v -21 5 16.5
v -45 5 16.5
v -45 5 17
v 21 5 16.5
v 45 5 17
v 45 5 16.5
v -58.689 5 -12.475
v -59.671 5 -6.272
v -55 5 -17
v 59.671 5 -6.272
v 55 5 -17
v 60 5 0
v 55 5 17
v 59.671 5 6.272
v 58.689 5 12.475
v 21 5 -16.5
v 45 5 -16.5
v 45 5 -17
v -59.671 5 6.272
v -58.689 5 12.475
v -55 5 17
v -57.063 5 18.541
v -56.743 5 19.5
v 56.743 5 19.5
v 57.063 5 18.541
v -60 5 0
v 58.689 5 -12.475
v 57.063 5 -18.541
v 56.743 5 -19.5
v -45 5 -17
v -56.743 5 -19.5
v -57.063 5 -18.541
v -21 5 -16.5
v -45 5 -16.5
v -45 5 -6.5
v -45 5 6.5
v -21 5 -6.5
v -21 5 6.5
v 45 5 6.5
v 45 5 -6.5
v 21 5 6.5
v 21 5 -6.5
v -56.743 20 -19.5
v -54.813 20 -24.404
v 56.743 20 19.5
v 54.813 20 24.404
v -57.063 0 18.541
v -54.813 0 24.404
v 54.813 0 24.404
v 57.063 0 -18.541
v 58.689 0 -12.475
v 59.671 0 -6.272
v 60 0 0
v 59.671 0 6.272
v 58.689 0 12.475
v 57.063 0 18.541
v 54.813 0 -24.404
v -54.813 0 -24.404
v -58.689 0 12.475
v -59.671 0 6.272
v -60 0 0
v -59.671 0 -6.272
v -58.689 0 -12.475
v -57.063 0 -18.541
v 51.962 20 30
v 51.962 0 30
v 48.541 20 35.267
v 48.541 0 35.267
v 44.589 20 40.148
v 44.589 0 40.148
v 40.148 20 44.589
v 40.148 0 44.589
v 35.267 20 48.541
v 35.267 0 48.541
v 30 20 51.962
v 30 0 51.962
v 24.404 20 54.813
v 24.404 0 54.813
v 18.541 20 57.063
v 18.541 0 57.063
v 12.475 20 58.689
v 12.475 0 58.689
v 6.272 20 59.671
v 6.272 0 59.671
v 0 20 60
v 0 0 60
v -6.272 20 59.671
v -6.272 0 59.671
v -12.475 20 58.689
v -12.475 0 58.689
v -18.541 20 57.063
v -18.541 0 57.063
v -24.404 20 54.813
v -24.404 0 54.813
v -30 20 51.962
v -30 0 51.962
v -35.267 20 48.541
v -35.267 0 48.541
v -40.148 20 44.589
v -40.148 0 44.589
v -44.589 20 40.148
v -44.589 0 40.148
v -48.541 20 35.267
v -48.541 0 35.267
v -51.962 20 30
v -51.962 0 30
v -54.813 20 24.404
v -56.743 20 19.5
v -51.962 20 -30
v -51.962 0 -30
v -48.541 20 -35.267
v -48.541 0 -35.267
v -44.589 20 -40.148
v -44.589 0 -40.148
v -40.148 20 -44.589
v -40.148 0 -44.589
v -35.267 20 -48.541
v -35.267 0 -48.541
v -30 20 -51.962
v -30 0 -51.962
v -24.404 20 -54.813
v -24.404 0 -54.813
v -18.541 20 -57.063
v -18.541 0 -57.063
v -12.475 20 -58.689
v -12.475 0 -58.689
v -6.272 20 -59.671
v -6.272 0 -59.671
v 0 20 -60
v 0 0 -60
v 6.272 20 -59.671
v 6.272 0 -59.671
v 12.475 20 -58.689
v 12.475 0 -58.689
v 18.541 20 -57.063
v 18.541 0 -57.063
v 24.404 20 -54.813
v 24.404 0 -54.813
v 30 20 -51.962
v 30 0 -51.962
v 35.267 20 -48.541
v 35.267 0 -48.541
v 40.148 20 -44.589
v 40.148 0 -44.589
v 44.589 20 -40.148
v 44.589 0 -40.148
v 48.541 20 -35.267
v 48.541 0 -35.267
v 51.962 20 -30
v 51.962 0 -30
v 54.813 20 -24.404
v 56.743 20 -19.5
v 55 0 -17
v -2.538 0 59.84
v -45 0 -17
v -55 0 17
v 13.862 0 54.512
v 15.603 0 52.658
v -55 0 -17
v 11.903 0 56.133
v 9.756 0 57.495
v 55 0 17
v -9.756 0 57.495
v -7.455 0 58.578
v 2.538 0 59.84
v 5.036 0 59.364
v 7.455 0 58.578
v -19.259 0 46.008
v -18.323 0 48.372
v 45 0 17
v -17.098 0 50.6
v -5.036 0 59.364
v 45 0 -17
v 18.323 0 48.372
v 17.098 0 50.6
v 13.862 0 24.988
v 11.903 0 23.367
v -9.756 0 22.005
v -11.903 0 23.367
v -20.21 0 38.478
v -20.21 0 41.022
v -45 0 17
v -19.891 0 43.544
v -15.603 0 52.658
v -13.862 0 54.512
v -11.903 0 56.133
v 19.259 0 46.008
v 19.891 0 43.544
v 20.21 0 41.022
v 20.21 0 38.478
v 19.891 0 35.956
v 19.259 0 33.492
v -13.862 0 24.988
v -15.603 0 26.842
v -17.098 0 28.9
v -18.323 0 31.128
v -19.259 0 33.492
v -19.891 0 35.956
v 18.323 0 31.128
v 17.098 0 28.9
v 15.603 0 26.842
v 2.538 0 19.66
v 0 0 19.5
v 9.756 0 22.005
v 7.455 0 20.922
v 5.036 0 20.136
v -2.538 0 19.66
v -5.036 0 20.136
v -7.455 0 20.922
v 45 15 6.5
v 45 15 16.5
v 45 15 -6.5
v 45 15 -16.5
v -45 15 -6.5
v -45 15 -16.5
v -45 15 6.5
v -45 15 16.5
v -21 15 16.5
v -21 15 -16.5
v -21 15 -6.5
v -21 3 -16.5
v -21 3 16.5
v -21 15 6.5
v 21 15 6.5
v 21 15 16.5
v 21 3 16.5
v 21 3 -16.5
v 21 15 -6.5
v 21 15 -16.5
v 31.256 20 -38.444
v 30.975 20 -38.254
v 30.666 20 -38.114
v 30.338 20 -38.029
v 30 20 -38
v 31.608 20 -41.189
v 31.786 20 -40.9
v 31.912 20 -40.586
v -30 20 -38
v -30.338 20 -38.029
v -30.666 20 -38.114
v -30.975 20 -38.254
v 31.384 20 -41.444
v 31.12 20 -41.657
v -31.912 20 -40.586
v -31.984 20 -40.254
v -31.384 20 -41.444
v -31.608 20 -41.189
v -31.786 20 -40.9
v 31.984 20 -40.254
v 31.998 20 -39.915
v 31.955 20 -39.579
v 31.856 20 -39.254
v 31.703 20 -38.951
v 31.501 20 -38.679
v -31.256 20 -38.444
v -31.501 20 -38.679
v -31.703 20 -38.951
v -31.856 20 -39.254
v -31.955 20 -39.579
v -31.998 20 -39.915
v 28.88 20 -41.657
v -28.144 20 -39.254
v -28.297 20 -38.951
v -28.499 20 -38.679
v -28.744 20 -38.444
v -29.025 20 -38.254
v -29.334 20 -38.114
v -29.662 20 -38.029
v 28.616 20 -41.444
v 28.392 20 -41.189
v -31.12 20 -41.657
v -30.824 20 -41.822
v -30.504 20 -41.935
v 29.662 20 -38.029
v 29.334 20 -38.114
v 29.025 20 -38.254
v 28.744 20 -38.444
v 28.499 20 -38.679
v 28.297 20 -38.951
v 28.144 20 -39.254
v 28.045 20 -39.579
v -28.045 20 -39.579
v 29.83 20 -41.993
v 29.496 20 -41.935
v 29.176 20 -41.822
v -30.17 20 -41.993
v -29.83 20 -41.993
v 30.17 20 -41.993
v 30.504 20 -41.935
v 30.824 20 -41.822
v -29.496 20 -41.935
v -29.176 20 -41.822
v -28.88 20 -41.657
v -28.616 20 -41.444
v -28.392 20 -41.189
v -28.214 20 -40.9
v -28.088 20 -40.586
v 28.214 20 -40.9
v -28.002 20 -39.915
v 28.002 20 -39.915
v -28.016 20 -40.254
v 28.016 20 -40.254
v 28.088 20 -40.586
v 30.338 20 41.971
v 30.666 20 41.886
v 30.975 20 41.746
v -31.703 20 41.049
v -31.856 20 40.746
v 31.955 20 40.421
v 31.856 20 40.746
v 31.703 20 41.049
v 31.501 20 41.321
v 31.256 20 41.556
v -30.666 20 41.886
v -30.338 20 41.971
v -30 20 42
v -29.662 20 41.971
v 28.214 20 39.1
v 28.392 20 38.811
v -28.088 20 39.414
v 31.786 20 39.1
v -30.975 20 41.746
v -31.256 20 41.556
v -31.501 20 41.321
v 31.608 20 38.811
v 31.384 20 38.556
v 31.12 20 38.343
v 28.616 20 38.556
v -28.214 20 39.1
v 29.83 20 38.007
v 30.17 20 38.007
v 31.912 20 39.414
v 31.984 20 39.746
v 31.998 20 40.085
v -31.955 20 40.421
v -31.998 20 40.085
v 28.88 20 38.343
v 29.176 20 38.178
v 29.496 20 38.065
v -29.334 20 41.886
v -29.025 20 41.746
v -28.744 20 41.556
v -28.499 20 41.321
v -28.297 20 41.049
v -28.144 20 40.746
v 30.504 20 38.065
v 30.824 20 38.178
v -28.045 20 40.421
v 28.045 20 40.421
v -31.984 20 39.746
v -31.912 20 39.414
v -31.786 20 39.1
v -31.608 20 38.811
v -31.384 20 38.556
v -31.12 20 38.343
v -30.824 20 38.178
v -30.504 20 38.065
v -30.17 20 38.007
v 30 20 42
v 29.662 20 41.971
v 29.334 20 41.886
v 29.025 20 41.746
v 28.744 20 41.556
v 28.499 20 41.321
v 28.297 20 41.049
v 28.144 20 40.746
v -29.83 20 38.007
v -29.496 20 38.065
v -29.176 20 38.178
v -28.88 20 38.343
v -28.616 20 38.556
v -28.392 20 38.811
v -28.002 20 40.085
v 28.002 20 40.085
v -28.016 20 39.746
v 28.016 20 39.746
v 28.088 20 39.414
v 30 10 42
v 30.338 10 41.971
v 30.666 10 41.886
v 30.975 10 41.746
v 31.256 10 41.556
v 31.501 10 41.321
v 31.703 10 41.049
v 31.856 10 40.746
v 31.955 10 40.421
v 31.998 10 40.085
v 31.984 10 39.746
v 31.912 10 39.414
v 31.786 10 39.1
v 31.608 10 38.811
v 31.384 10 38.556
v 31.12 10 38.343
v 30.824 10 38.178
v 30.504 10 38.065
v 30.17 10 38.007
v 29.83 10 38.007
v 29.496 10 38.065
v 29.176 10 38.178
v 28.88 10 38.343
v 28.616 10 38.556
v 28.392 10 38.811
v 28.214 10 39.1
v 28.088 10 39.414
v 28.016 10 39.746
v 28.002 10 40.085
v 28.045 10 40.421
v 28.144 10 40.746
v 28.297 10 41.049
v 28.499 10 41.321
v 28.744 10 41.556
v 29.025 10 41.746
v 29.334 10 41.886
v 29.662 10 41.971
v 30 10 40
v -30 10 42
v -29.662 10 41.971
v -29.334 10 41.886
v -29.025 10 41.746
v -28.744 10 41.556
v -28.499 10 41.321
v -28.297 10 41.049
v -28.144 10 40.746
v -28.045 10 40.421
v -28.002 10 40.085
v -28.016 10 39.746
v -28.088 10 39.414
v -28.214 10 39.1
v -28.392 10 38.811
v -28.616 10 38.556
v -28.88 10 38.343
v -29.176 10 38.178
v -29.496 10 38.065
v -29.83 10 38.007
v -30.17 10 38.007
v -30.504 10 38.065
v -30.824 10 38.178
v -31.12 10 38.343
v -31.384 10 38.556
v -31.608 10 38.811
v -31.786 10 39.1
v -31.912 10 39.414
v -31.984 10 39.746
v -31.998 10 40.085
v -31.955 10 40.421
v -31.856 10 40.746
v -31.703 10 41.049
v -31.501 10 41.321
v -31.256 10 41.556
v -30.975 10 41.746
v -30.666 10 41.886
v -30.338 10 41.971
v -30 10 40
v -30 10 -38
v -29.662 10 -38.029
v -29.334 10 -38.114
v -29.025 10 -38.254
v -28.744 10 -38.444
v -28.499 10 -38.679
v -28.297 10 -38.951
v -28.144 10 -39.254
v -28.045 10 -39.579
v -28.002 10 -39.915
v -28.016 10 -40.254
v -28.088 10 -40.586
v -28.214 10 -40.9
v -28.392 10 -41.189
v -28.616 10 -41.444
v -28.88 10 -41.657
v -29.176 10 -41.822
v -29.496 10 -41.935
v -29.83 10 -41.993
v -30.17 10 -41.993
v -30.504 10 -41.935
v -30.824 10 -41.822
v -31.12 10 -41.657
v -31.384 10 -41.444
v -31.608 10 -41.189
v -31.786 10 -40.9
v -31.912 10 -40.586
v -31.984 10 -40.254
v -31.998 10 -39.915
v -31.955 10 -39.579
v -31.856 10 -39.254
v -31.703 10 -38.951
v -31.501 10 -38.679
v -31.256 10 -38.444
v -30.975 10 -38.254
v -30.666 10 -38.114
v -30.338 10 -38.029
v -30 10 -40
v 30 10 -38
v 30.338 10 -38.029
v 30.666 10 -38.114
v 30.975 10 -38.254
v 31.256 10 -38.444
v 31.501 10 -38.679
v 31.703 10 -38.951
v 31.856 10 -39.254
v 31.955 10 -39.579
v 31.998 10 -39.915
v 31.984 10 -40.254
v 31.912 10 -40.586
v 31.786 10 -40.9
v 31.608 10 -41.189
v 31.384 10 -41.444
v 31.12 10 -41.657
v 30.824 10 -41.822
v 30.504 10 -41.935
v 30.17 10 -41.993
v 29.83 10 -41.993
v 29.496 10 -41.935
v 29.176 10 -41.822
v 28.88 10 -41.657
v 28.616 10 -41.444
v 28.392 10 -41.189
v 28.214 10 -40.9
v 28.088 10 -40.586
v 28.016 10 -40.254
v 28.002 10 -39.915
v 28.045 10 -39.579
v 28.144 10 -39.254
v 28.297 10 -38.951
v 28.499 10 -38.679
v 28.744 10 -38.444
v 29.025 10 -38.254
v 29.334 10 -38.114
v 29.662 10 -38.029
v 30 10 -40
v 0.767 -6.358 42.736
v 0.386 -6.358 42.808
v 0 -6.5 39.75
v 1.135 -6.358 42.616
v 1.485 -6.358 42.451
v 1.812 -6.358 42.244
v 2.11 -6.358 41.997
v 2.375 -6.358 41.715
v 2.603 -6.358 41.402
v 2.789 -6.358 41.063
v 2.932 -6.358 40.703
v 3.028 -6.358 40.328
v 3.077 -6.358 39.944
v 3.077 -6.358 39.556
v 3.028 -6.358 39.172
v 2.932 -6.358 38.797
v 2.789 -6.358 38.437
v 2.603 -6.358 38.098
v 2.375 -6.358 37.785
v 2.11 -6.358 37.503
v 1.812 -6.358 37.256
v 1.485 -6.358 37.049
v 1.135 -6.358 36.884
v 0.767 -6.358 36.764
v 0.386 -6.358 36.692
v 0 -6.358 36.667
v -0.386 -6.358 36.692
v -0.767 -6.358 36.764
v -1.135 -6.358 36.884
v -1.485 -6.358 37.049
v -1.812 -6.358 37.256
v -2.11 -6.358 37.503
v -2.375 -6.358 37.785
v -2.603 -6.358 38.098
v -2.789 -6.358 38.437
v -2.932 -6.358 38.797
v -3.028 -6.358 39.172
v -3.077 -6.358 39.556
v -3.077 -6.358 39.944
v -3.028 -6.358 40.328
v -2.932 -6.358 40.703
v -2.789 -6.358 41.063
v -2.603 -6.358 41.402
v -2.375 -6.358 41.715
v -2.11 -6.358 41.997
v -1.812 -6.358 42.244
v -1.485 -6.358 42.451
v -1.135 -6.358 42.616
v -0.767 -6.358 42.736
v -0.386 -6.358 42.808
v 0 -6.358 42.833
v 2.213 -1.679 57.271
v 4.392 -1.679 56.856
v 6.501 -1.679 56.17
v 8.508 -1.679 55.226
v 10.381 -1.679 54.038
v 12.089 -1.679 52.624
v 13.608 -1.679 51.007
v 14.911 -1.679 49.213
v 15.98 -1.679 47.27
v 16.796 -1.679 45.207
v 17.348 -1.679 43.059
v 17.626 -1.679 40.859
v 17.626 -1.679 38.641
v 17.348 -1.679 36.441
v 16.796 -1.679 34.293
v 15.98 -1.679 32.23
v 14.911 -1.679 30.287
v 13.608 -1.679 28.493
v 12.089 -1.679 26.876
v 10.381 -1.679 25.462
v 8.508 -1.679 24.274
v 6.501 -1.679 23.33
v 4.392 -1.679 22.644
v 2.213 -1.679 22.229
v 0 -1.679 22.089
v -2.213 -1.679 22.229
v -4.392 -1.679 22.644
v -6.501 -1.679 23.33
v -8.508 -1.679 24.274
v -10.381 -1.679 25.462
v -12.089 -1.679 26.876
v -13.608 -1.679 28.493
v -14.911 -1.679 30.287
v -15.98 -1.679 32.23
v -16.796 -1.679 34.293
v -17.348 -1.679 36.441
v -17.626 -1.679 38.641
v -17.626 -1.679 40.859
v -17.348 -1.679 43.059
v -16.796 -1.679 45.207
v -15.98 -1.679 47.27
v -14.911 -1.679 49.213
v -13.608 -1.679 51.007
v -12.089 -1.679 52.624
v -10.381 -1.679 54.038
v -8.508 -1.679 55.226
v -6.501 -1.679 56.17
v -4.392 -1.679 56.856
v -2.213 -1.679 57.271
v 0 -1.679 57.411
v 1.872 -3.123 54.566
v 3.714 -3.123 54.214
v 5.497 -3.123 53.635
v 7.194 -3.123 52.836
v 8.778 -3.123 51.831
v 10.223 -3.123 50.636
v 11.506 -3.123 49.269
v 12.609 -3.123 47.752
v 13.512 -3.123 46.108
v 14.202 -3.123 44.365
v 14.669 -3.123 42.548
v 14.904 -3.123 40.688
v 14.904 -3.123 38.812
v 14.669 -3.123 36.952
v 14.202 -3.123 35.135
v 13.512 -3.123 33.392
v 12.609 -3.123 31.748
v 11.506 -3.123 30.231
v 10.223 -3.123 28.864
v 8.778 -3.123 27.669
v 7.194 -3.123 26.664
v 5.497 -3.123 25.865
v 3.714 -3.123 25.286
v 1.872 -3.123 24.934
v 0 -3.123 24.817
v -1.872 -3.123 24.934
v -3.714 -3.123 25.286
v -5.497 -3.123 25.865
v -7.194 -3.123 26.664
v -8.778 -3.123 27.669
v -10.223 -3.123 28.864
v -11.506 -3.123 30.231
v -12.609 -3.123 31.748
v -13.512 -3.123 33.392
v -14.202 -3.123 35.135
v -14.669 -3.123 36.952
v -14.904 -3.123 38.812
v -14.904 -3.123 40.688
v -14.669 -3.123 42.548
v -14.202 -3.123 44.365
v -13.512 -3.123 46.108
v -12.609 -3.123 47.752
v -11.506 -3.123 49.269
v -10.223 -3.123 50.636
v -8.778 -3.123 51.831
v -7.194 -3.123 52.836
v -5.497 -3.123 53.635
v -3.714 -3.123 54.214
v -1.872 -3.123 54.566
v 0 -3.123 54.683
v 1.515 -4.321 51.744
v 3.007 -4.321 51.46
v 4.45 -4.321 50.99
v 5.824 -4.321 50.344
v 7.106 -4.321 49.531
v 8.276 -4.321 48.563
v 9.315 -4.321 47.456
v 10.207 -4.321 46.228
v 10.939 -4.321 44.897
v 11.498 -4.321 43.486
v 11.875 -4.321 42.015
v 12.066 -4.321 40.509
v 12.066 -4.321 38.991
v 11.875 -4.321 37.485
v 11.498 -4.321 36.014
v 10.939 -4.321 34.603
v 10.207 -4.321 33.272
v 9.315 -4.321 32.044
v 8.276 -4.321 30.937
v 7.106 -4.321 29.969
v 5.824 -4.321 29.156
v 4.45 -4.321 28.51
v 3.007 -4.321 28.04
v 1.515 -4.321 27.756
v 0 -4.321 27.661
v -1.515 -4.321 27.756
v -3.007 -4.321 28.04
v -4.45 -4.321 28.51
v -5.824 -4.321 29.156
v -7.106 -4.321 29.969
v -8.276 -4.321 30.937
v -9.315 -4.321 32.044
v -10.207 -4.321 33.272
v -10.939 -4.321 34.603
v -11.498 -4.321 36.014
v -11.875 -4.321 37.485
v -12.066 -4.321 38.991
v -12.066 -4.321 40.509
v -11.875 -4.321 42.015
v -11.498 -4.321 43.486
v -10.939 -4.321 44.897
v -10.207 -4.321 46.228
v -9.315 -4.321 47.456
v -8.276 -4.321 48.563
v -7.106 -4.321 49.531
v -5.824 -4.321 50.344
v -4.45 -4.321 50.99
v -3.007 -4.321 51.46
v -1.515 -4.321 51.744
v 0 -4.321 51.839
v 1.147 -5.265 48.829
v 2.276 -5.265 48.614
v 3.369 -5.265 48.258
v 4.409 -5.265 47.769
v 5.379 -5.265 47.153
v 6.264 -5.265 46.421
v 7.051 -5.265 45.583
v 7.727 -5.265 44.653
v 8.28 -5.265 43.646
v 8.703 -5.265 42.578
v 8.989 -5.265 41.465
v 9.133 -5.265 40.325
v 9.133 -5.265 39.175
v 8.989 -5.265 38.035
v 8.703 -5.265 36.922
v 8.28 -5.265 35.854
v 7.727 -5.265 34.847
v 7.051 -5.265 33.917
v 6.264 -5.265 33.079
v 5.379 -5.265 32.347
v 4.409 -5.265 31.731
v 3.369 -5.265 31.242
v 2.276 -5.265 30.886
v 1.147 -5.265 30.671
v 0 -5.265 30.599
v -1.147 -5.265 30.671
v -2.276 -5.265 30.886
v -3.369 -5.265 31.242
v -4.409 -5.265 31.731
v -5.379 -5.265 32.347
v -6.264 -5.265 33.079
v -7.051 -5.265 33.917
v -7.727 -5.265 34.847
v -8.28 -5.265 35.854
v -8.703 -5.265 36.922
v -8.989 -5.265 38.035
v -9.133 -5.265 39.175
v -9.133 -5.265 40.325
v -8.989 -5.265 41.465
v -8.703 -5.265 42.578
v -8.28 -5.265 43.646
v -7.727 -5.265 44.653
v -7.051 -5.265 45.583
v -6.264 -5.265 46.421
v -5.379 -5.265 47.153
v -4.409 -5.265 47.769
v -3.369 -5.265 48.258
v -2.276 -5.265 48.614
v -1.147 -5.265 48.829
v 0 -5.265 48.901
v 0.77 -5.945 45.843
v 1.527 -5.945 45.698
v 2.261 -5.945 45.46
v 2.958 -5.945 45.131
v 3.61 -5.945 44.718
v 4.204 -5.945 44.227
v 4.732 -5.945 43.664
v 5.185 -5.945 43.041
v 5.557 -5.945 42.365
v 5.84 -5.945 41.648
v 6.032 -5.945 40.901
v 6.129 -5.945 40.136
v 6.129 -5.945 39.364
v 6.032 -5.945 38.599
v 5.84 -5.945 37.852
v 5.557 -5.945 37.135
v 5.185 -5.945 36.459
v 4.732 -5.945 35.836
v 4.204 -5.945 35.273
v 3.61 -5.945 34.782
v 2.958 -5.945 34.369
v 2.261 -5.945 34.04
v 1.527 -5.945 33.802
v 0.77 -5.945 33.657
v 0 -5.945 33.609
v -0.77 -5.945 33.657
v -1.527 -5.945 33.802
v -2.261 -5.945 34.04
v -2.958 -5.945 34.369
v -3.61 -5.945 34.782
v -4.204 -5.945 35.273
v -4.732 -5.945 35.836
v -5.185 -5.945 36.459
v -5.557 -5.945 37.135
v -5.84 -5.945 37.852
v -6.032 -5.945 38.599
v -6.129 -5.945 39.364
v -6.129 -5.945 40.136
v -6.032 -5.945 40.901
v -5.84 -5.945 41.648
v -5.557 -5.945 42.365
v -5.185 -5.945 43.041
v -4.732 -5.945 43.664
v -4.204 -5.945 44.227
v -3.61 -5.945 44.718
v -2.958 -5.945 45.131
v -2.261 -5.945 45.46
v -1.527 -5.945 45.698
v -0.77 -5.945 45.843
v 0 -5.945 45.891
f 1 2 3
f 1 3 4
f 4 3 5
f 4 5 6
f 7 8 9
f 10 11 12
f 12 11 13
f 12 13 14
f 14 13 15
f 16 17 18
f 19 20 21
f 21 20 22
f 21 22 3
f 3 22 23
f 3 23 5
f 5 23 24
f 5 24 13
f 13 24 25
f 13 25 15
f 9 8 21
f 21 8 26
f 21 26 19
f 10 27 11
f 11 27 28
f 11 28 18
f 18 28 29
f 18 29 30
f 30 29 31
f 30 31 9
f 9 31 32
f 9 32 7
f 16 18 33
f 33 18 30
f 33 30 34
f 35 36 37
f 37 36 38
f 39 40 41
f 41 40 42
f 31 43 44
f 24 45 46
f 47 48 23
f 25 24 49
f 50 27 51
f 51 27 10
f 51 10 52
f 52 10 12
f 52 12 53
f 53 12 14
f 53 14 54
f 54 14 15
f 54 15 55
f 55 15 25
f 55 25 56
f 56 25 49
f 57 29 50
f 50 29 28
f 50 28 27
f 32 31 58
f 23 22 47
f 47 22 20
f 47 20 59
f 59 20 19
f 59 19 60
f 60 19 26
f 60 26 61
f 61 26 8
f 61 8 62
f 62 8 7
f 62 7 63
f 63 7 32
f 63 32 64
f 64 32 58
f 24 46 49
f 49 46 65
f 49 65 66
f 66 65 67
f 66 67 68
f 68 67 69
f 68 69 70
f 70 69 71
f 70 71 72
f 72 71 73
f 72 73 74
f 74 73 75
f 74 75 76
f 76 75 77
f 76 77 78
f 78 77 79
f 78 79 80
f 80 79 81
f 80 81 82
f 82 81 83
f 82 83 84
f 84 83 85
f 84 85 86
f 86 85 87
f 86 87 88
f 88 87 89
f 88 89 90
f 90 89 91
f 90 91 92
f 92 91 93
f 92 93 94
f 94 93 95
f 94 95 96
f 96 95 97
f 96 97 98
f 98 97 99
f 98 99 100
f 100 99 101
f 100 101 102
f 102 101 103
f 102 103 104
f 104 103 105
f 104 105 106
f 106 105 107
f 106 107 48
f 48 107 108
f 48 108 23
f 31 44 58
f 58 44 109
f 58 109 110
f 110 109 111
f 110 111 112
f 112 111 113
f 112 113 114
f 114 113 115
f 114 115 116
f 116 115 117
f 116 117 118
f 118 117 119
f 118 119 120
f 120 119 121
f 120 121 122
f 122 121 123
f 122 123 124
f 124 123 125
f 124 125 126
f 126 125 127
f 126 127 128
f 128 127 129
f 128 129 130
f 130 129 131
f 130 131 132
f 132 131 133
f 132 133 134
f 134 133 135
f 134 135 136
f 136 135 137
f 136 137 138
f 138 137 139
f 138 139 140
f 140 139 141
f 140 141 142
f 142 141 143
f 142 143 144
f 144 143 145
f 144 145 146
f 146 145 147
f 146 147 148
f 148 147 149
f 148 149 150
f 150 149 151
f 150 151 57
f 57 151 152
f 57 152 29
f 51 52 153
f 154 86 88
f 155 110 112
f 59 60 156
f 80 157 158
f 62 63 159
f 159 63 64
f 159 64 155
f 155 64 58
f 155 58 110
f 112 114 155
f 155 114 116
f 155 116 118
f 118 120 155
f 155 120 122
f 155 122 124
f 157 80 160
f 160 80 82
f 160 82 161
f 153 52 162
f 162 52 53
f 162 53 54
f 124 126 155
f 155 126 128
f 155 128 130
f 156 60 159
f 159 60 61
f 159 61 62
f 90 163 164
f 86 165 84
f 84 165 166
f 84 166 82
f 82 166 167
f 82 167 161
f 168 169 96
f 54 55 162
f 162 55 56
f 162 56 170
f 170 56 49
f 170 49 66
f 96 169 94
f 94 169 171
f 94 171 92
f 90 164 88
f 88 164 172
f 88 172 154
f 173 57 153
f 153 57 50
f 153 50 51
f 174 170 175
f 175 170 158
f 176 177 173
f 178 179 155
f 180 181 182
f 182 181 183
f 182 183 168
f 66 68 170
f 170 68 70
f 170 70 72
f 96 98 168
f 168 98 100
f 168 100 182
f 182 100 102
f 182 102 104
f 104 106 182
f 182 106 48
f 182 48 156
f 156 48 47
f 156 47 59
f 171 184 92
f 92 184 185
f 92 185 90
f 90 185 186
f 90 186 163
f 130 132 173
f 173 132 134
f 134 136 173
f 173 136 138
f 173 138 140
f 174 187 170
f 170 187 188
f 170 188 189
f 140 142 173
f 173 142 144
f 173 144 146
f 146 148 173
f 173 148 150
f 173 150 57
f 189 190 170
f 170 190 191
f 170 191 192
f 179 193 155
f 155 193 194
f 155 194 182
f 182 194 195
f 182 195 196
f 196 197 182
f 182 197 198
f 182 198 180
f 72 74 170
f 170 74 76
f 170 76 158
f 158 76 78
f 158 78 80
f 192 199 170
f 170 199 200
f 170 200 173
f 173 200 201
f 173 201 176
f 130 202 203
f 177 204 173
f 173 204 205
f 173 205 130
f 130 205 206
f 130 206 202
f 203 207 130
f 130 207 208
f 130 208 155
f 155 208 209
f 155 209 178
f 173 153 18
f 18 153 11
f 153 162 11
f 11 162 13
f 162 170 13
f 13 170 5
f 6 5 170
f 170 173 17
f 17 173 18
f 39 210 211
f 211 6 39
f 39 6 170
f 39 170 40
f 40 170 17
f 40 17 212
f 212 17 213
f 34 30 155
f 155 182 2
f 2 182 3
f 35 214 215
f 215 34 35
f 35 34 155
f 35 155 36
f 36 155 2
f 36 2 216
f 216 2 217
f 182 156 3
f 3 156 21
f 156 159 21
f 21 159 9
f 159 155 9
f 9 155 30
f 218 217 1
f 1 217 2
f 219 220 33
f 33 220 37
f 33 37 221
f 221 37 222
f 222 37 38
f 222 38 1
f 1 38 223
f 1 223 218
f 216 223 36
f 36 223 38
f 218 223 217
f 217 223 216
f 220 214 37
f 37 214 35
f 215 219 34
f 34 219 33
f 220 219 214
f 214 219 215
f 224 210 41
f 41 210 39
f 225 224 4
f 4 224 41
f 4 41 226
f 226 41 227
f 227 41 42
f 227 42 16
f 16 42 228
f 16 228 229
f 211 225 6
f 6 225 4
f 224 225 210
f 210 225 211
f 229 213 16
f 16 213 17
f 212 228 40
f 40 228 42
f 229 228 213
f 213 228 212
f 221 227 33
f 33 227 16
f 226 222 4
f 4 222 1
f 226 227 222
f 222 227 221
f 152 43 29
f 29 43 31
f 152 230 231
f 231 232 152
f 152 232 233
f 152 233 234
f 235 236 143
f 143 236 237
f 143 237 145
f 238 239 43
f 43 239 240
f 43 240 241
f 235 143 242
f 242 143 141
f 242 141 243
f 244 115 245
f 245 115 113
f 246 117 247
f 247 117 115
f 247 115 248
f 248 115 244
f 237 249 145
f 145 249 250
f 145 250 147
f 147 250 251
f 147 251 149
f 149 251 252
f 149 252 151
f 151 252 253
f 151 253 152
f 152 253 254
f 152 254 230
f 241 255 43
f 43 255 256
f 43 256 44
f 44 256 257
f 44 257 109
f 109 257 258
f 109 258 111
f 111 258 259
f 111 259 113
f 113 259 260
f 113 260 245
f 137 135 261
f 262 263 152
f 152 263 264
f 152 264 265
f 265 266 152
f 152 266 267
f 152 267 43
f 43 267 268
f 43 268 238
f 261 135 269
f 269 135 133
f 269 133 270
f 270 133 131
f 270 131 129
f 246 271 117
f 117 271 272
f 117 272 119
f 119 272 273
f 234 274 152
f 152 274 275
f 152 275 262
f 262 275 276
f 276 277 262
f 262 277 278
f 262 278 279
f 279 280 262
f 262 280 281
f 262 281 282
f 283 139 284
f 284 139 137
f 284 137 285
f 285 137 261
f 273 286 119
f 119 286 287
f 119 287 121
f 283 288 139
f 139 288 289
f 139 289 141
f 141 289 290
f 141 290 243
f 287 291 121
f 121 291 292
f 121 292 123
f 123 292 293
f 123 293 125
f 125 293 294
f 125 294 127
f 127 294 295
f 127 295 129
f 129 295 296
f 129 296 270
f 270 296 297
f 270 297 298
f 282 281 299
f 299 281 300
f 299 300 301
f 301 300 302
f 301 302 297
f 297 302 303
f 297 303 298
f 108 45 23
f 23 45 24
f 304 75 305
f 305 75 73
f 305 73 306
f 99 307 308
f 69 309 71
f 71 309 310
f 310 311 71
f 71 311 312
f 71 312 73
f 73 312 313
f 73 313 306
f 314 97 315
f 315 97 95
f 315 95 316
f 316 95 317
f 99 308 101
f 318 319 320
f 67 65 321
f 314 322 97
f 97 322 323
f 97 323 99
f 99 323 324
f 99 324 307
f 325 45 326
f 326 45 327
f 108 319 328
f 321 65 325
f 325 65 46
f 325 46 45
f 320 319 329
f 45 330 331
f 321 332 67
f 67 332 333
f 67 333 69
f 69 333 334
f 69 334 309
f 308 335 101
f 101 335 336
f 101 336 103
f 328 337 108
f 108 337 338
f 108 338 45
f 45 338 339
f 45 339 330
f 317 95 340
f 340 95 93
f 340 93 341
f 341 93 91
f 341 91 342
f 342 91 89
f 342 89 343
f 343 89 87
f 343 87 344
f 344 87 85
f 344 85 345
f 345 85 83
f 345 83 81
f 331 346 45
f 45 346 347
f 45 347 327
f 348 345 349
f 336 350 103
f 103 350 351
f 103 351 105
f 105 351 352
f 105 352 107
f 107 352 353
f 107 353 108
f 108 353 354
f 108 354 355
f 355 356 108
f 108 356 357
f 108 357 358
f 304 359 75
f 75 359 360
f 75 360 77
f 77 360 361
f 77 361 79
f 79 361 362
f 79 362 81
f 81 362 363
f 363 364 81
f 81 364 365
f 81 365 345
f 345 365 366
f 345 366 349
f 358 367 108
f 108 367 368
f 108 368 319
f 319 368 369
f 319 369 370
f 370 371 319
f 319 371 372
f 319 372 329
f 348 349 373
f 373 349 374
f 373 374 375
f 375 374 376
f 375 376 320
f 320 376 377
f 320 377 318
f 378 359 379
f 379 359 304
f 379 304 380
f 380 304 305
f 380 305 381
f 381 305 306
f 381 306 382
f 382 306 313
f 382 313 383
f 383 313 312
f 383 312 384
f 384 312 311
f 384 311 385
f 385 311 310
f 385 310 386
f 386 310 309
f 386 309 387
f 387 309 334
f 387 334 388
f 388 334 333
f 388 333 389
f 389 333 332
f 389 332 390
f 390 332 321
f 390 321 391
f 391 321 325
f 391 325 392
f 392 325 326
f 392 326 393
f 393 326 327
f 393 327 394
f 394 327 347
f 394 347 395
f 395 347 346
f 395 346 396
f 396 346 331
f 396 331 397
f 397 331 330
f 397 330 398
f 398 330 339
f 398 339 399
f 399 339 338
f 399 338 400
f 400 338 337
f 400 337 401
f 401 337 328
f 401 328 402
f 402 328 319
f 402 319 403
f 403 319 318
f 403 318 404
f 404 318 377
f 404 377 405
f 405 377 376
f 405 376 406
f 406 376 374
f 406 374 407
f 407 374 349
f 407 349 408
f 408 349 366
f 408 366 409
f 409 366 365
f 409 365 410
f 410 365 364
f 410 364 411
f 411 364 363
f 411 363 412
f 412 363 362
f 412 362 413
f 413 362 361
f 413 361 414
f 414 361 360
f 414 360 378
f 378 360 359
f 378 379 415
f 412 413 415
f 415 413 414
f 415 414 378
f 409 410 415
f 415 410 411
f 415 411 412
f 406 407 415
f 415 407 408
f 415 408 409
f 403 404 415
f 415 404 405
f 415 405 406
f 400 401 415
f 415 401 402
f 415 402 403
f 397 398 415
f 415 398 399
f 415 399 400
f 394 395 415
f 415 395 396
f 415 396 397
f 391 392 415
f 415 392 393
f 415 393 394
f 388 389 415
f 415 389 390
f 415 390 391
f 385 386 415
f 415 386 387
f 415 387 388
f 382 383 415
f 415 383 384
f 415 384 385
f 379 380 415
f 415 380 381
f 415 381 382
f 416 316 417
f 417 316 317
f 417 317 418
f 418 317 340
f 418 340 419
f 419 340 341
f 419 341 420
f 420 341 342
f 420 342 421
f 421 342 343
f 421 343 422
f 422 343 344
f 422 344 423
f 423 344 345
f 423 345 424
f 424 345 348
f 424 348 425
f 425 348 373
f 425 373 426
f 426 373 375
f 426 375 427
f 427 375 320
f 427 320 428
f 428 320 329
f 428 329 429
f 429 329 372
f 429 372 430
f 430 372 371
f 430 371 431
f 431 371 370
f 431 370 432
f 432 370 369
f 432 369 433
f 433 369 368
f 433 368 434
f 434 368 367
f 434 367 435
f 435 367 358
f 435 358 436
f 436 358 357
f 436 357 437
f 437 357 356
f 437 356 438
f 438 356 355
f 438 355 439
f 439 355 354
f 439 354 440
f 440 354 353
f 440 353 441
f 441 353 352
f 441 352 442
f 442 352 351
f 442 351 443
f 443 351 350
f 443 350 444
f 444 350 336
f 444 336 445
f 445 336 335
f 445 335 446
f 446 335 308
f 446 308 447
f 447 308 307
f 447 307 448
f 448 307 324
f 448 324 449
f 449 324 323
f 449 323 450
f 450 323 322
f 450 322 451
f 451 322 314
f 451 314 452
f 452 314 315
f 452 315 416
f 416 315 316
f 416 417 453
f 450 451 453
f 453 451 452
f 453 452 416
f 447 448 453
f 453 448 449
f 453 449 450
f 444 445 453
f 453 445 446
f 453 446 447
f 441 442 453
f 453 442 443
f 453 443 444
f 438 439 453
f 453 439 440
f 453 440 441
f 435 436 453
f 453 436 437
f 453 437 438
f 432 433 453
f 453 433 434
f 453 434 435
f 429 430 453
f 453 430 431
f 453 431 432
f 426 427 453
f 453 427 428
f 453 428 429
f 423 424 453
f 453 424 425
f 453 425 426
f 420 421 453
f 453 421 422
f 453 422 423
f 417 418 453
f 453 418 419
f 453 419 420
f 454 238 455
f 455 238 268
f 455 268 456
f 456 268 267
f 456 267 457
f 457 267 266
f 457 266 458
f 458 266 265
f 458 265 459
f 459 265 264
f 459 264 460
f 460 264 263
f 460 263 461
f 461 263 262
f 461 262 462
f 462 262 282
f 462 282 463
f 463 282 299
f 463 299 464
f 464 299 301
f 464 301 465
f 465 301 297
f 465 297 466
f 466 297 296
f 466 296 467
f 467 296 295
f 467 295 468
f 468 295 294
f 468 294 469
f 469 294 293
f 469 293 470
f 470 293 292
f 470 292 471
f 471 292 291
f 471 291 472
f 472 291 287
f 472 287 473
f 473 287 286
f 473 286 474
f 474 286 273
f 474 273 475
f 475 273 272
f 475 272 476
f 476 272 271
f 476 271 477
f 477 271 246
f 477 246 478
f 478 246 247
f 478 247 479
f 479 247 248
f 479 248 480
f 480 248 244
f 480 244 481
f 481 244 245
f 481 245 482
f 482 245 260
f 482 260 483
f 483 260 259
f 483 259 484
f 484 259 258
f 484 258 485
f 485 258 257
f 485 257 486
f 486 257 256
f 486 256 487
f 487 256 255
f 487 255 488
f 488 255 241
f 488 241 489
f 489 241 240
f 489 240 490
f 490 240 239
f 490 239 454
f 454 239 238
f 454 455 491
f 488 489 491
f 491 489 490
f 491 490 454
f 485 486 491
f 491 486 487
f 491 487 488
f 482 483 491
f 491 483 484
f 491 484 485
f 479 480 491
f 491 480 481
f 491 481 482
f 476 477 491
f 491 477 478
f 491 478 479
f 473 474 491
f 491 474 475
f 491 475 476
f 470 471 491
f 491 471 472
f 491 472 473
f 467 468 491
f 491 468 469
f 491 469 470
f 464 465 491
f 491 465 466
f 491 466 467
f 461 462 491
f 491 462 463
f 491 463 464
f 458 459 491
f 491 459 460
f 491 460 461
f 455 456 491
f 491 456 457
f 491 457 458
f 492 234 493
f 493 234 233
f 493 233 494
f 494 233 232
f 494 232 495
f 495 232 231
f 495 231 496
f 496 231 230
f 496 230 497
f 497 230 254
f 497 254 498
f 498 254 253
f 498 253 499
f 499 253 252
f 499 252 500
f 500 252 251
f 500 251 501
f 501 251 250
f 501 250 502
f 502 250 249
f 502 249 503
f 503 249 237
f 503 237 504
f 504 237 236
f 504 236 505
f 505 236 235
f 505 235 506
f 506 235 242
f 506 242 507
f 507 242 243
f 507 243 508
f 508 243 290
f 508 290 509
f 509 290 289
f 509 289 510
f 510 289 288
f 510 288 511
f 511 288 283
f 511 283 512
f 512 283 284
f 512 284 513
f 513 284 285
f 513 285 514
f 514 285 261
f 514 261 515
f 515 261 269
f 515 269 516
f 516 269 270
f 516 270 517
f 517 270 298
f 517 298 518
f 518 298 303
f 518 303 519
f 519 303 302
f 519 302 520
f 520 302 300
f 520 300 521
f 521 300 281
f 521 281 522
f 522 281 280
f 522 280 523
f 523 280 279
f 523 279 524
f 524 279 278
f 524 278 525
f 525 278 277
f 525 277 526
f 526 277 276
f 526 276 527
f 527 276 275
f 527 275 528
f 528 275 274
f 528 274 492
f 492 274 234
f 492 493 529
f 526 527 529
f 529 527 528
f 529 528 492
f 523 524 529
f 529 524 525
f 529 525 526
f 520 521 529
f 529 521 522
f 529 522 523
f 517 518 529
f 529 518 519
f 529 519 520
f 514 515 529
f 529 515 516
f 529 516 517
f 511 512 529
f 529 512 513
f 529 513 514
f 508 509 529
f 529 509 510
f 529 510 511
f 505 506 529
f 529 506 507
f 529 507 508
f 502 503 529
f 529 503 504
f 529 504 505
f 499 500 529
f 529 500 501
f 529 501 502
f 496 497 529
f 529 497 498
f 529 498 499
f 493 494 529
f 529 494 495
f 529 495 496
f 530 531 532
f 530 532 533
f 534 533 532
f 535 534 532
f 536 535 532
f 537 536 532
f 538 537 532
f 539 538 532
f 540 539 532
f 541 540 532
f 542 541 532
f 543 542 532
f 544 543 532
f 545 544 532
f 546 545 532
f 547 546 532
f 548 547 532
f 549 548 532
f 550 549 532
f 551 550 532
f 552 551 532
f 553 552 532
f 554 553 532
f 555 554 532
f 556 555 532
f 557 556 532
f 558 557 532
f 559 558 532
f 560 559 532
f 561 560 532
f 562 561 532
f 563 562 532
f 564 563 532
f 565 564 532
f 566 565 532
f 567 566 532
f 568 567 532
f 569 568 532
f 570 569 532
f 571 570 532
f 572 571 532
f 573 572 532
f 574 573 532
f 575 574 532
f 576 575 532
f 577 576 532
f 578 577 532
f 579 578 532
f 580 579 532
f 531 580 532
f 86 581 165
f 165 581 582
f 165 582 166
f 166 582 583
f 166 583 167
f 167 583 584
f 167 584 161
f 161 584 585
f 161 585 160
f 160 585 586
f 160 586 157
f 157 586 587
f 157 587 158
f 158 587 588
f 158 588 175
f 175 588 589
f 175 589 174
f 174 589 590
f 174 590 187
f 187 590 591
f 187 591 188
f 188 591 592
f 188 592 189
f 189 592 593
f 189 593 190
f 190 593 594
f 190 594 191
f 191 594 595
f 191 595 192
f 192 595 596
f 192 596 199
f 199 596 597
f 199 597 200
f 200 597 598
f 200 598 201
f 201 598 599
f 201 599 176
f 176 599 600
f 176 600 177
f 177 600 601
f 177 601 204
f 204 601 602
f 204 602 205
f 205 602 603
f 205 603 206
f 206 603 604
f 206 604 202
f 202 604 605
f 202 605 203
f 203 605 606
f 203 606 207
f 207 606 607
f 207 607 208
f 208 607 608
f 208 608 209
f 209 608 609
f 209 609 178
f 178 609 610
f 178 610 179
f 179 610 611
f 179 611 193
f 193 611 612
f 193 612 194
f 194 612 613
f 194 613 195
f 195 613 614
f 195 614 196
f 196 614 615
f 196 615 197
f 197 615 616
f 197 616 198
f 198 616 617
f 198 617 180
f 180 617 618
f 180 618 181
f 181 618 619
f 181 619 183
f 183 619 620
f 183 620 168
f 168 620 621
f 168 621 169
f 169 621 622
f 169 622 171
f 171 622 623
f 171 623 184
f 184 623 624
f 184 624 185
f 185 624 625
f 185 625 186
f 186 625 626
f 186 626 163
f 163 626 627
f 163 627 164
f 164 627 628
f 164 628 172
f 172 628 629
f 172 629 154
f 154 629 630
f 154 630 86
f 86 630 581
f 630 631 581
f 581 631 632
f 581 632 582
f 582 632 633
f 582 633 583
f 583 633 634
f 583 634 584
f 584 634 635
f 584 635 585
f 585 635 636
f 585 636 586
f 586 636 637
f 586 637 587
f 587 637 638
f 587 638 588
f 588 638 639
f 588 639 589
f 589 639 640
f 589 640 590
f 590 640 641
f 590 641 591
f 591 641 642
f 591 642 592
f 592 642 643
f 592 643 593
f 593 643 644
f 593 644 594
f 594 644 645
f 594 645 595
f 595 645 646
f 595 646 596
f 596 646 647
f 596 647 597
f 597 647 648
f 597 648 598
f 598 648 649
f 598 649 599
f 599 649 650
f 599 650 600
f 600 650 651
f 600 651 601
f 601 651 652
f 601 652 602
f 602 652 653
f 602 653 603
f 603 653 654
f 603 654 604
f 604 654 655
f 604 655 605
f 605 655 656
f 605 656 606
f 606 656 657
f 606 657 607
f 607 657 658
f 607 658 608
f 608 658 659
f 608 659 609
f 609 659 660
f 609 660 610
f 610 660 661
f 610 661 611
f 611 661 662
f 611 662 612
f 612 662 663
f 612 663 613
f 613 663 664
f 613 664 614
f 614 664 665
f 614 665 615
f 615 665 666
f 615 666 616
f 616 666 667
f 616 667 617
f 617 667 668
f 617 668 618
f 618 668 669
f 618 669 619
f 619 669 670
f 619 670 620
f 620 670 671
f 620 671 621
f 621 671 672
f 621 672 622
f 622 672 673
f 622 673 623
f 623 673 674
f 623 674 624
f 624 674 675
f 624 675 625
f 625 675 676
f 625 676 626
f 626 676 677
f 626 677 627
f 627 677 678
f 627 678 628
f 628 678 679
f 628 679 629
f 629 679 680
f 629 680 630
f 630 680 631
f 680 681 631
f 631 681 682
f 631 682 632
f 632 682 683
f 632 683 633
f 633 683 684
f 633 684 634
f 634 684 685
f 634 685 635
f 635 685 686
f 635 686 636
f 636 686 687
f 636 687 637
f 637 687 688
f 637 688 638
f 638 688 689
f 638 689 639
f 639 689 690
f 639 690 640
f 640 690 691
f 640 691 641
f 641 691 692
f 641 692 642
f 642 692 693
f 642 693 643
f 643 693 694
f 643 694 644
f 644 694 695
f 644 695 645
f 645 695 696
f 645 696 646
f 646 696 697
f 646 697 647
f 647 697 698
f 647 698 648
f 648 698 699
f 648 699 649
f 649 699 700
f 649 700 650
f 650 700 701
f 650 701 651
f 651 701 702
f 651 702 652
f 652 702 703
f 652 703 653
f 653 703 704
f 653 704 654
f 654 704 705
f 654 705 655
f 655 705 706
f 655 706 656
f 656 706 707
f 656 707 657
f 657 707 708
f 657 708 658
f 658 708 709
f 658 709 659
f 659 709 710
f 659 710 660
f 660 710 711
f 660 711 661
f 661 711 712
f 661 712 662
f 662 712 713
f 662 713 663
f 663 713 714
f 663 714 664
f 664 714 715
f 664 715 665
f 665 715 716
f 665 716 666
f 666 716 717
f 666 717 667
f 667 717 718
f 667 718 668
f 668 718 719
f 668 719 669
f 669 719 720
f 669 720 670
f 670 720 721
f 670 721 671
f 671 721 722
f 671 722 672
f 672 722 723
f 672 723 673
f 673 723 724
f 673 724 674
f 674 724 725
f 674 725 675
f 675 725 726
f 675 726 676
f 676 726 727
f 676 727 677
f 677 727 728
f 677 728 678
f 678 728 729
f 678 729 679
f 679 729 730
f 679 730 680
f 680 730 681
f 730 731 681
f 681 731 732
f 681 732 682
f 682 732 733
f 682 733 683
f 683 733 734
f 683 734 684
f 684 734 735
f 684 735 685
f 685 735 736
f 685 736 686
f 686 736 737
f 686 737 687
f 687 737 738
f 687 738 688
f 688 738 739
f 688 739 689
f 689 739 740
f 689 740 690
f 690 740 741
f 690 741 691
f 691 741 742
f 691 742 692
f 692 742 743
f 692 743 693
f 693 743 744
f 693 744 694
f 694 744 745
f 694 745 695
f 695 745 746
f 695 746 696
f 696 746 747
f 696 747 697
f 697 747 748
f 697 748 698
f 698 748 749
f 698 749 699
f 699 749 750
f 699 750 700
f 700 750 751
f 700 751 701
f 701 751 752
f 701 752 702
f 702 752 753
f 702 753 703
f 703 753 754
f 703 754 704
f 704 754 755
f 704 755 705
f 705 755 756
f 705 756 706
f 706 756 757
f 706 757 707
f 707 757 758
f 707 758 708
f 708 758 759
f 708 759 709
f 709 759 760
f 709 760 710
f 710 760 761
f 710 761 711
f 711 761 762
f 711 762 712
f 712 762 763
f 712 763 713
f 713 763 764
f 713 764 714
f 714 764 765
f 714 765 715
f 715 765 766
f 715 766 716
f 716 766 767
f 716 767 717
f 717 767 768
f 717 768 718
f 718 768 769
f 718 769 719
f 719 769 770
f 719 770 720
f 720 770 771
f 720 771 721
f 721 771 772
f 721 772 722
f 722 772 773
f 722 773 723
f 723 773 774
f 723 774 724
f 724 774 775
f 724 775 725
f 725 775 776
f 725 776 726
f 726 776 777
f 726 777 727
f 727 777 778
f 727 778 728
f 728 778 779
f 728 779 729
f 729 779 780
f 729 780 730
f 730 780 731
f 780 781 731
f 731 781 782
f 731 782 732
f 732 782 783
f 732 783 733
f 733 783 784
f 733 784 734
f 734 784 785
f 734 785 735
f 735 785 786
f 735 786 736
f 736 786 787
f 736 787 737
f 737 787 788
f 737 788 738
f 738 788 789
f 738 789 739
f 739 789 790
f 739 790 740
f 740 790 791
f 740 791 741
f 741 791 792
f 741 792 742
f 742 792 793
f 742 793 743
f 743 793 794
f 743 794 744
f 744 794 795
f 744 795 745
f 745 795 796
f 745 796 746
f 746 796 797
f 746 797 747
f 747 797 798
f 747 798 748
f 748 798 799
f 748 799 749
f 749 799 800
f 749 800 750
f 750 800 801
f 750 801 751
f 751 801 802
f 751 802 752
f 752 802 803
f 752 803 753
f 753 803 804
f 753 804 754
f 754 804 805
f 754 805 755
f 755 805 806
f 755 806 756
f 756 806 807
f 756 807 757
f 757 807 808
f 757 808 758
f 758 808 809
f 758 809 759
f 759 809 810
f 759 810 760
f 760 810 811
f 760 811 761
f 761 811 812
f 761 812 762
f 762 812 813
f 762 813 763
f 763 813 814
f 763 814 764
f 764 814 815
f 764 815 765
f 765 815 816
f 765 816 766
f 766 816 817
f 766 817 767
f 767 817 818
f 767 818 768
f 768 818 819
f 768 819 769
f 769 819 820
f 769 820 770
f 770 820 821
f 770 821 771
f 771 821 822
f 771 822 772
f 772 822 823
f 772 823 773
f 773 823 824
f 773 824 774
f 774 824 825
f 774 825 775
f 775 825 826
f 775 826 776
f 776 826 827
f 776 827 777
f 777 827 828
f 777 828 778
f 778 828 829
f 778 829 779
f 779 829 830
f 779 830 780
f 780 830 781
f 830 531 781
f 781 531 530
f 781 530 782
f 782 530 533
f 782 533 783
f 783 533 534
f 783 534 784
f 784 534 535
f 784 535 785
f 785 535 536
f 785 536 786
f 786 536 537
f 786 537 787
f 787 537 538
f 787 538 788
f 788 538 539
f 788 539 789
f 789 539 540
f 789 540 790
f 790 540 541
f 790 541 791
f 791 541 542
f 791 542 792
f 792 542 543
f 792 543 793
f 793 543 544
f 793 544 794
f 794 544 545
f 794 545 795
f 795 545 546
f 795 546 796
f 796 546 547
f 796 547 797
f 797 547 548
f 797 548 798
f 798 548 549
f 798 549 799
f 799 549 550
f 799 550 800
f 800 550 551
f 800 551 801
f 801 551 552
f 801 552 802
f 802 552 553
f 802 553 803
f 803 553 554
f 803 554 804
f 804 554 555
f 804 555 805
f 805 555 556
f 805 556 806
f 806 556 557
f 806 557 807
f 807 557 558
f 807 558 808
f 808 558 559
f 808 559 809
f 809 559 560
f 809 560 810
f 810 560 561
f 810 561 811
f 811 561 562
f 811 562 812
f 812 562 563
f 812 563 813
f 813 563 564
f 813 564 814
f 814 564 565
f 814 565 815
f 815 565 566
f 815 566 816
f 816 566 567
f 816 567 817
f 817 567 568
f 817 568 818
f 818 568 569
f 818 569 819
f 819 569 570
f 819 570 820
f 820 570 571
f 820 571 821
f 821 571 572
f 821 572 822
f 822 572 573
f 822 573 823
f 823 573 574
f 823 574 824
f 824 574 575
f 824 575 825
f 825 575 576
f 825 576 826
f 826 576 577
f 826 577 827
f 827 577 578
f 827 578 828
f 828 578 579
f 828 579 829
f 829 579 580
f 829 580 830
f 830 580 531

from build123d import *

# Parameters (mm, degrees)
SKETCH1_R               = 60
BOSS_EXTRUDE1_DEPTH     = 5
SKETCH2_W               = 10
SKETCH2_H               = 34
CUT_EXTRUDE1_DEPTH      = 1
CUT_EXTRUDE1_DEPTH_BACK = 6
SKETCH3_W               = 24
SKETCH3_H               = 10
BOSS_EXTRUDE2_DEPTH     = 10
SKETCH4_W               = 42
SKETCH4_H               = 33
CUT_EXTRUDE2_DEPTH      = 2
BOSS_EXTRUDE3_DEPTH     = 15
SKETCH6_R               = 2
CUT_EXTRUDE3_DEPTH      = 10


with BuildPart() as part:
    # Sketch1 → Boss-Extrude1 (new body)
    with BuildSketch(Plane(origin=(0, 0, 0), x_dir=(1, 0, 0), z_dir=(0, 1, 0))):
        Circle(SKETCH1_R)
    extrude(amount=BOSS_EXTRUDE1_DEPTH)

    # Sketch2 → Cut-Extrude1 (cut, two sides)
    with BuildSketch(Plane(origin=(0, 5, 0), x_dir=(1, 0, 0), z_dir=(0, 1, 0))) as cut_extrude1_sk:
        with Locations((-50, 0)):
            Rectangle(SKETCH2_W, SKETCH2_H)
        with Locations((50, 0)):
            Rectangle(SKETCH2_W, SKETCH2_H)
    extrude(amount=CUT_EXTRUDE1_DEPTH, mode=Mode.SUBTRACT)
    extrude(cut_extrude1_sk.sketch, amount=-CUT_EXTRUDE1_DEPTH_BACK, mode=Mode.SUBTRACT)

    # Sketch3 → Boss-Extrude2 (add)
    with BuildSketch(Plane(origin=(0, 5, 0), x_dir=(1, 0, 0), z_dir=(0, 1, 0))):
        with Locations((-33, -11.5)):
            Rectangle(SKETCH3_W, SKETCH3_H)
        with Locations((-33, 11.5)):
            Rectangle(SKETCH3_W, SKETCH3_H)
        with Locations((33, -11.5)):
            Rectangle(SKETCH3_W, SKETCH3_H)
        with Locations((33, 11.5)):
            Rectangle(SKETCH3_W, SKETCH3_H)
    extrude(amount=BOSS_EXTRUDE2_DEPTH)

    # Sketch4 → Cut-Extrude2 (cut)
    with BuildSketch(Plane(origin=(0, 5, 0), x_dir=(1, 0, 0), z_dir=(0, 1, 0))):
        Rectangle(SKETCH4_W, SKETCH4_H)
    extrude(amount=-CUT_EXTRUDE2_DEPTH, mode=Mode.SUBTRACT)

    # Sketch5 → Boss-Extrude3 (add)
    with BuildSketch(Plane(origin=(0, 5, 0), x_dir=(1, 0, 0), z_dir=(0, 1, 0))):
        with BuildLine():
            Line((-56.742840958, 19.5), (56.742840958, 19.5))
            ThreePointArc((56.742840958, 19.5), (0, 60), (-56.742840958, 19.5))
        make_face()
        with BuildLine():
            Line((-56.742840958, -19.5), (56.742840958, -19.5))
            ThreePointArc((56.742840958, -19.5), (0, -60), (-56.742840958, -19.5))
        make_face()
    extrude(amount=BOSS_EXTRUDE3_DEPTH)

    # Sketch6 → Cut-Extrude3 (cut)
    with BuildSketch(Plane(origin=(0, 20, 0), x_dir=(1, 0, 0), z_dir=(0, 1, 0))):
        with Locations((30, -40)):
            Circle(SKETCH6_R)
        with Locations((-30, -40)):
            Circle(SKETCH6_R)
        with Locations((30, 40)):
            Circle(SKETCH6_R)
        with Locations((-30, 40)):
            Circle(SKETCH6_R)
    extrude(amount=-CUT_EXTRUDE3_DEPTH, mode=Mode.SUBTRACT)

    # Sketch7 → Revolve1 (revolve)
    with BuildSketch(Plane(origin=(0, 0, 0), x_dir=(0, 0, -1), z_dir=(1, 0, 0))):
        with BuildLine():
            Line((-39.75, 0), (-39.75, -6.5))
            ThreePointArc((-39.75, -6.5), (-29.119335131, -4.825340555), (-19.5, 0))
            Line((-19.5, 0), (-39.75, 0))
        make_face()
    revolve(axis=Axis((0, 0, 39.75), (0, -1, 0)))


solid = part.part
